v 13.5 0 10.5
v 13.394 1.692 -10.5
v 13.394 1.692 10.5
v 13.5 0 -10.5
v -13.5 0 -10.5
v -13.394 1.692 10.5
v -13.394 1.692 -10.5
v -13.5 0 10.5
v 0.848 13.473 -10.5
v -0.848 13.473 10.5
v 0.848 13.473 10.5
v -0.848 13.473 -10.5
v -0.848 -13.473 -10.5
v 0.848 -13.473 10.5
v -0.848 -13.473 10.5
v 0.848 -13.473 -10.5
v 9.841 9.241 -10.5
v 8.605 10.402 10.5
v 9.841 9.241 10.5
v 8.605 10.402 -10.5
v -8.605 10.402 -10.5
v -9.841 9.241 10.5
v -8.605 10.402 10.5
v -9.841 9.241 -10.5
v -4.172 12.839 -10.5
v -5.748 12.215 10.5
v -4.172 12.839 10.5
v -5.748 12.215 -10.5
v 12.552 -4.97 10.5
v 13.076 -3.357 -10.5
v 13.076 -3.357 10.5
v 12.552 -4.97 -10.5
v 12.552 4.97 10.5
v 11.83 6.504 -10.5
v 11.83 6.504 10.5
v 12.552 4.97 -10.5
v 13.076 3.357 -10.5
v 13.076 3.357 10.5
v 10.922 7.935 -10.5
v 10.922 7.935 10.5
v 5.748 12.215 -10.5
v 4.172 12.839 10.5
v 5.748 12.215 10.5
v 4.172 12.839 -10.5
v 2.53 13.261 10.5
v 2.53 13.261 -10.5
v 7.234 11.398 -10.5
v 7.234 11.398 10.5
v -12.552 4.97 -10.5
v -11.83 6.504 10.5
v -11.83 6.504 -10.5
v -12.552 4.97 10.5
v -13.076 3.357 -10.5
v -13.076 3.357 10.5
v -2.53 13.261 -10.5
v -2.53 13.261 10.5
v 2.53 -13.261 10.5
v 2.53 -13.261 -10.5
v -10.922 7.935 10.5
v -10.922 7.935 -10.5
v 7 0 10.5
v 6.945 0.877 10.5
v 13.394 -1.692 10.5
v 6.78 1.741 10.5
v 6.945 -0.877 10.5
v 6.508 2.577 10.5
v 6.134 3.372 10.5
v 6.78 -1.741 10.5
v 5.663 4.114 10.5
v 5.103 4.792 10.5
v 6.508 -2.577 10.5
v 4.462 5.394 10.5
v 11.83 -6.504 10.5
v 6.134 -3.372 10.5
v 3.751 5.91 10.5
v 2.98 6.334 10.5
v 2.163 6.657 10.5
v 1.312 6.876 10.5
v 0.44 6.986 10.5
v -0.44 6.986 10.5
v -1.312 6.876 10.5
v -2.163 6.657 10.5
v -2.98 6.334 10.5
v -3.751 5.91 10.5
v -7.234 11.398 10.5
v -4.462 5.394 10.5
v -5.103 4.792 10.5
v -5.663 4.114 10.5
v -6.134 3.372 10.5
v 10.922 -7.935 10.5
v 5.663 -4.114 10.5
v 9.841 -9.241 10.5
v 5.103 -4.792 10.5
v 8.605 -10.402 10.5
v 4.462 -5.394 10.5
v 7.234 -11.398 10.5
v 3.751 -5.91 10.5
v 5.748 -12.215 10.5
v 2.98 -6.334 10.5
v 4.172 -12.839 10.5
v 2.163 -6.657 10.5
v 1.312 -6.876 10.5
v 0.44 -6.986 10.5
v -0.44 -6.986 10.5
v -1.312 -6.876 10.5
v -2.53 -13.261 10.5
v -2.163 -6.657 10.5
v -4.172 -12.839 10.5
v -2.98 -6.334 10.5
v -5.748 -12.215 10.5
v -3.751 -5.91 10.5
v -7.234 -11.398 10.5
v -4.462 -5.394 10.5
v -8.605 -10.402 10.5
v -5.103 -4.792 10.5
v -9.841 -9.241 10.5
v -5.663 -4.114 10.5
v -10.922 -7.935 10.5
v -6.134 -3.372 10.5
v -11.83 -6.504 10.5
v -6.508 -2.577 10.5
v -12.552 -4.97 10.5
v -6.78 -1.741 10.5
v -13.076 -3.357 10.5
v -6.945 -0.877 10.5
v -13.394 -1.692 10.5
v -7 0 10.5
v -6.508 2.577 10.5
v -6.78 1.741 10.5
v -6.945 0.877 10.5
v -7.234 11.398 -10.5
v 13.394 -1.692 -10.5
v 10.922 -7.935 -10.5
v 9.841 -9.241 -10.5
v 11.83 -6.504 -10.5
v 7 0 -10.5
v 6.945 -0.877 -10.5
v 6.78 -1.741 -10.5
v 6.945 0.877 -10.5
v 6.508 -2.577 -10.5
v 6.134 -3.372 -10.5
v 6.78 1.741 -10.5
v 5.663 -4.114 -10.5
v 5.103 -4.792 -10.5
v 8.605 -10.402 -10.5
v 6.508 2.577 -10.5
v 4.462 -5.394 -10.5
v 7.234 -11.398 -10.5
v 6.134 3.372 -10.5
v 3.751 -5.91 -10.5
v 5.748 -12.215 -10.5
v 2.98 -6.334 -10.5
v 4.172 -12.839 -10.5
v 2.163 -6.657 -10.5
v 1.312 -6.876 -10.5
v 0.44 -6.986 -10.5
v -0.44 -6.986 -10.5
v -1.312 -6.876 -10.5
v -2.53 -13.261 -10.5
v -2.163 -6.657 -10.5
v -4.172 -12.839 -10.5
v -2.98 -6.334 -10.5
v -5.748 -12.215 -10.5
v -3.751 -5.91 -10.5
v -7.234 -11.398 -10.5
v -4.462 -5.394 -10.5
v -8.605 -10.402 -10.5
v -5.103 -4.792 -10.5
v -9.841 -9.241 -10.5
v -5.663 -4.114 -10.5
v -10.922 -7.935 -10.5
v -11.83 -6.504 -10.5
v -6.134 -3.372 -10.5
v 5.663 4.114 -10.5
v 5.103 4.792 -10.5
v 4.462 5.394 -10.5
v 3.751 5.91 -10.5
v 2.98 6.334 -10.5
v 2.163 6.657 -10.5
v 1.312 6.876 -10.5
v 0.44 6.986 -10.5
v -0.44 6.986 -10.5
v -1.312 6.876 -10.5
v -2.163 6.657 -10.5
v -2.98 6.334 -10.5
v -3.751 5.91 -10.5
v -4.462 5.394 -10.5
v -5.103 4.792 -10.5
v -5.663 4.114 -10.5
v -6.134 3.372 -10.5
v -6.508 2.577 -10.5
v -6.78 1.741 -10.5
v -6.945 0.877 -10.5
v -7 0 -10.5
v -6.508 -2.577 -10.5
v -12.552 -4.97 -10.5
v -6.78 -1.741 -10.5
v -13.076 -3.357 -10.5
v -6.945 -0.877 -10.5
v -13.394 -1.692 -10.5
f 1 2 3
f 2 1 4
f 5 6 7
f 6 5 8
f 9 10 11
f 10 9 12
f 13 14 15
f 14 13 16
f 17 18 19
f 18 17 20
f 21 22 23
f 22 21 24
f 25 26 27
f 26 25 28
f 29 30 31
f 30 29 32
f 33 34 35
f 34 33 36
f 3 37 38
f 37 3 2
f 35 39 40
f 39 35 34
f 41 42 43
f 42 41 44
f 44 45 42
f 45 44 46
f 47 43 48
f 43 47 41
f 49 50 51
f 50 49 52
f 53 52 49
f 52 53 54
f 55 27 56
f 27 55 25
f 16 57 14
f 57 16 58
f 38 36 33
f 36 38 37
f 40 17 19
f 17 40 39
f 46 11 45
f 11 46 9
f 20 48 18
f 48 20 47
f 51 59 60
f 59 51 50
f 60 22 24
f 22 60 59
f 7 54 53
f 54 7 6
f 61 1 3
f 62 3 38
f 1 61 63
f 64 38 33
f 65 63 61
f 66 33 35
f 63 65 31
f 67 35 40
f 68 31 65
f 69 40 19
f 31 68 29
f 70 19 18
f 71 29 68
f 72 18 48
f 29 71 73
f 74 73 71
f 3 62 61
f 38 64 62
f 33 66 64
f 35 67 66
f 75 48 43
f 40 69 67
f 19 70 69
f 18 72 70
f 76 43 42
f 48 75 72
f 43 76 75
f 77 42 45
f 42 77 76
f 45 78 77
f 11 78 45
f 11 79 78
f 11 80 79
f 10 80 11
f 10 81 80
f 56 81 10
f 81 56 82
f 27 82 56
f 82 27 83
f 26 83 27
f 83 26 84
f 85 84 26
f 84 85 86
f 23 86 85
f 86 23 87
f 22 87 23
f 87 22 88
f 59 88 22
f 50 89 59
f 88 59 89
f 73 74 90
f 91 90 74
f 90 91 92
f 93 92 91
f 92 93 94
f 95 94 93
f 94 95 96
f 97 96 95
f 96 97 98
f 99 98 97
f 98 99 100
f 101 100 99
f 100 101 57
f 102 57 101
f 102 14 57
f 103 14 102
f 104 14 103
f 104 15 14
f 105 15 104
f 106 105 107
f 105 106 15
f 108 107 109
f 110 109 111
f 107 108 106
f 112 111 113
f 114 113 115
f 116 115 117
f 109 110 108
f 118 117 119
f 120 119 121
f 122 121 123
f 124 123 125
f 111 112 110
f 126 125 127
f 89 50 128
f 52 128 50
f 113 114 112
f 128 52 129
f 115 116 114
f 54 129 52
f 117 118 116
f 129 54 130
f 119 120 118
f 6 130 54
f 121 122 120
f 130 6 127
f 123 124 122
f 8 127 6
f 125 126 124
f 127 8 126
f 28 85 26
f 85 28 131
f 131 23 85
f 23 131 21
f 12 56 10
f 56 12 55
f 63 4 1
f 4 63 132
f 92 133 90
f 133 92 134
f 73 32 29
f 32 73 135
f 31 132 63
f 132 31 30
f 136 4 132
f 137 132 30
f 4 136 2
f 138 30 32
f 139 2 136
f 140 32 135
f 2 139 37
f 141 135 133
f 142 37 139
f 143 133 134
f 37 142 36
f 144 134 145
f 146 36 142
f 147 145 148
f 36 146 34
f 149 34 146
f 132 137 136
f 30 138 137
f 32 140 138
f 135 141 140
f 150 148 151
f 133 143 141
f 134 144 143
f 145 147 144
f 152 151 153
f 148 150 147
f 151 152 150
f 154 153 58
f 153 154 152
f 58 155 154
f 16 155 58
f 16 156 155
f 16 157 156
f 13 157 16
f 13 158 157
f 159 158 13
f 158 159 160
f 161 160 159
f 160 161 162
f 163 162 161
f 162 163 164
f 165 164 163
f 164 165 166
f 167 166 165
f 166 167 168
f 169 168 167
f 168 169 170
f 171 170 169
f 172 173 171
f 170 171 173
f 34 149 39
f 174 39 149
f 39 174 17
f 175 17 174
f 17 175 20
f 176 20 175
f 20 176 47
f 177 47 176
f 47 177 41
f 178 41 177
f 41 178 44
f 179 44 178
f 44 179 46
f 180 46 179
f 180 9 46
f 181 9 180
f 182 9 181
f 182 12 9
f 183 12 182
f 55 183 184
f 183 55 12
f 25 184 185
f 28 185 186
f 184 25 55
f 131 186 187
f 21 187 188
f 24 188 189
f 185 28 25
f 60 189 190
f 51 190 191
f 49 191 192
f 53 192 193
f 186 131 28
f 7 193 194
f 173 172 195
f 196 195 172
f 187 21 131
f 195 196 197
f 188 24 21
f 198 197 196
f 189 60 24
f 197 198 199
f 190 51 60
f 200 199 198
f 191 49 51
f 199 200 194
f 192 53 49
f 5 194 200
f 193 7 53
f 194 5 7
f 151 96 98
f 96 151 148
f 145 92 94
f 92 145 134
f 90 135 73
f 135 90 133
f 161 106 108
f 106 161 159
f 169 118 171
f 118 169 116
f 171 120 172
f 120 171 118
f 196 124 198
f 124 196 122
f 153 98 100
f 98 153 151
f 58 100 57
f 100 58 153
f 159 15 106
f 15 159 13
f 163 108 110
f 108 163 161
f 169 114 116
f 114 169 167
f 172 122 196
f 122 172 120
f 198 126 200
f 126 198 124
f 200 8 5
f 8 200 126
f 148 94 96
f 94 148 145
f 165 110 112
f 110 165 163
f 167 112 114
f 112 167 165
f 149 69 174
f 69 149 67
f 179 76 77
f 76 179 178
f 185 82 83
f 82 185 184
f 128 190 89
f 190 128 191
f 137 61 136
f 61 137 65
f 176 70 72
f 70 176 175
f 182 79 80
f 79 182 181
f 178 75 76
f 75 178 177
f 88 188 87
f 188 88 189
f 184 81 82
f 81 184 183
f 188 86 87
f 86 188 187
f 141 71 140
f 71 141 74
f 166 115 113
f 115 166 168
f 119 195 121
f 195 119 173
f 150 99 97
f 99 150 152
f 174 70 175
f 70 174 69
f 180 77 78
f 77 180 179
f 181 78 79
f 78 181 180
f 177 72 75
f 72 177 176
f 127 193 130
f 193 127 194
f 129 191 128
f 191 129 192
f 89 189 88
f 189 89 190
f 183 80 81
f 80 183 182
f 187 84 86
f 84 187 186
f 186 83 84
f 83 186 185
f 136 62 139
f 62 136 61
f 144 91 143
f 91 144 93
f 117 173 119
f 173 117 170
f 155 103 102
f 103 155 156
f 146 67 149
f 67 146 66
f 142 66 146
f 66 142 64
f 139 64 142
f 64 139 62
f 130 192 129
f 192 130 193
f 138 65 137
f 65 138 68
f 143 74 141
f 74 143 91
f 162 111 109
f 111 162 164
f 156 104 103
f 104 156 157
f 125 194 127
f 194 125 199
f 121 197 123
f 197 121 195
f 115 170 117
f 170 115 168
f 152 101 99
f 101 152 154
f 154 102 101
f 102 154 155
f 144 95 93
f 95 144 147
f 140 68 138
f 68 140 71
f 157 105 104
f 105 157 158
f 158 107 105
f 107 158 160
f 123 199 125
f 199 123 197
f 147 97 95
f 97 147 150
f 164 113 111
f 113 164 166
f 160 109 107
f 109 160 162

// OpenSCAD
$fn = 50;


difference() {
	union() {
		translate(v = [0, 0, -10.5000000000]) {
			cylinder(h = 21, r = 13.5000000000);
		}
	}
	union() {
		translate(v = [0, 0, -100.0000000000]) {
			cylinder(h = 200, r = 7);
		}
	}
}
